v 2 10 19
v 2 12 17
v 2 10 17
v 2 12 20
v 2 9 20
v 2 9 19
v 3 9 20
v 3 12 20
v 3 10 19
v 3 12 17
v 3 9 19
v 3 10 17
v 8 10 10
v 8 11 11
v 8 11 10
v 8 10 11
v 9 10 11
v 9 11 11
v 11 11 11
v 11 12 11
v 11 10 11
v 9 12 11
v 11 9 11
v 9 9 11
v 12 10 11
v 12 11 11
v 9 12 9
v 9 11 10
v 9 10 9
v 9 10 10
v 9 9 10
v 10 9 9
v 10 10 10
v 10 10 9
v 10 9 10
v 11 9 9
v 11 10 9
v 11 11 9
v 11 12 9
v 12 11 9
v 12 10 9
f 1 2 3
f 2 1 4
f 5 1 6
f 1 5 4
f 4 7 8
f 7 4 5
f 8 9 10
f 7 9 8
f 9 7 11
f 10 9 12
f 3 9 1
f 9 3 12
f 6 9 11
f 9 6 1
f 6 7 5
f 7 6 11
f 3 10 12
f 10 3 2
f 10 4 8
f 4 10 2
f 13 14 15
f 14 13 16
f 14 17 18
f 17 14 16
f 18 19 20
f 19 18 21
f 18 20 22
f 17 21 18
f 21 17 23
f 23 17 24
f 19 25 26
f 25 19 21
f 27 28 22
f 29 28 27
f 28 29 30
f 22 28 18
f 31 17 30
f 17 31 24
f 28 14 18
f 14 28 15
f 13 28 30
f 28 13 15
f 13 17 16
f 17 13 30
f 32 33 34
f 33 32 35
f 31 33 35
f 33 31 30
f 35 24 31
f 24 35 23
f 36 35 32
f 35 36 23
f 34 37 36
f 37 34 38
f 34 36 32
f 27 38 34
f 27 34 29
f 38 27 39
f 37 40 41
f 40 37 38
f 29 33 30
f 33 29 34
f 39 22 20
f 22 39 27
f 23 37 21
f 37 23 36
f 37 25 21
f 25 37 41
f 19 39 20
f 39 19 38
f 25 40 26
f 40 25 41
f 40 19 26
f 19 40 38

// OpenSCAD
// Create matrix
mr = 	[
[2,9,19],
[2,10,17],
[2,10,18],
[2,10,19],
[2,11,17],
[2,11,18],
[2,11,19],
[8,10,10],
[9,9,10],
[9,10,9],
[9,10,10],
[9,11,9],
[9,11,10],
[10,9,9],
[10,9,10],
[10,10,9],
[10,10,10],
[10,11,9],
[10,11,10],
[11,10,9],
[11,10,10],
		];
// Draw cubes
// Z-axis
for (a =[0:len(mr)-1]){
	color([1,0,0]) translate([mr[a][0], mr[a][1], mr[a][2]])cube([1,1,1]);
			
}
